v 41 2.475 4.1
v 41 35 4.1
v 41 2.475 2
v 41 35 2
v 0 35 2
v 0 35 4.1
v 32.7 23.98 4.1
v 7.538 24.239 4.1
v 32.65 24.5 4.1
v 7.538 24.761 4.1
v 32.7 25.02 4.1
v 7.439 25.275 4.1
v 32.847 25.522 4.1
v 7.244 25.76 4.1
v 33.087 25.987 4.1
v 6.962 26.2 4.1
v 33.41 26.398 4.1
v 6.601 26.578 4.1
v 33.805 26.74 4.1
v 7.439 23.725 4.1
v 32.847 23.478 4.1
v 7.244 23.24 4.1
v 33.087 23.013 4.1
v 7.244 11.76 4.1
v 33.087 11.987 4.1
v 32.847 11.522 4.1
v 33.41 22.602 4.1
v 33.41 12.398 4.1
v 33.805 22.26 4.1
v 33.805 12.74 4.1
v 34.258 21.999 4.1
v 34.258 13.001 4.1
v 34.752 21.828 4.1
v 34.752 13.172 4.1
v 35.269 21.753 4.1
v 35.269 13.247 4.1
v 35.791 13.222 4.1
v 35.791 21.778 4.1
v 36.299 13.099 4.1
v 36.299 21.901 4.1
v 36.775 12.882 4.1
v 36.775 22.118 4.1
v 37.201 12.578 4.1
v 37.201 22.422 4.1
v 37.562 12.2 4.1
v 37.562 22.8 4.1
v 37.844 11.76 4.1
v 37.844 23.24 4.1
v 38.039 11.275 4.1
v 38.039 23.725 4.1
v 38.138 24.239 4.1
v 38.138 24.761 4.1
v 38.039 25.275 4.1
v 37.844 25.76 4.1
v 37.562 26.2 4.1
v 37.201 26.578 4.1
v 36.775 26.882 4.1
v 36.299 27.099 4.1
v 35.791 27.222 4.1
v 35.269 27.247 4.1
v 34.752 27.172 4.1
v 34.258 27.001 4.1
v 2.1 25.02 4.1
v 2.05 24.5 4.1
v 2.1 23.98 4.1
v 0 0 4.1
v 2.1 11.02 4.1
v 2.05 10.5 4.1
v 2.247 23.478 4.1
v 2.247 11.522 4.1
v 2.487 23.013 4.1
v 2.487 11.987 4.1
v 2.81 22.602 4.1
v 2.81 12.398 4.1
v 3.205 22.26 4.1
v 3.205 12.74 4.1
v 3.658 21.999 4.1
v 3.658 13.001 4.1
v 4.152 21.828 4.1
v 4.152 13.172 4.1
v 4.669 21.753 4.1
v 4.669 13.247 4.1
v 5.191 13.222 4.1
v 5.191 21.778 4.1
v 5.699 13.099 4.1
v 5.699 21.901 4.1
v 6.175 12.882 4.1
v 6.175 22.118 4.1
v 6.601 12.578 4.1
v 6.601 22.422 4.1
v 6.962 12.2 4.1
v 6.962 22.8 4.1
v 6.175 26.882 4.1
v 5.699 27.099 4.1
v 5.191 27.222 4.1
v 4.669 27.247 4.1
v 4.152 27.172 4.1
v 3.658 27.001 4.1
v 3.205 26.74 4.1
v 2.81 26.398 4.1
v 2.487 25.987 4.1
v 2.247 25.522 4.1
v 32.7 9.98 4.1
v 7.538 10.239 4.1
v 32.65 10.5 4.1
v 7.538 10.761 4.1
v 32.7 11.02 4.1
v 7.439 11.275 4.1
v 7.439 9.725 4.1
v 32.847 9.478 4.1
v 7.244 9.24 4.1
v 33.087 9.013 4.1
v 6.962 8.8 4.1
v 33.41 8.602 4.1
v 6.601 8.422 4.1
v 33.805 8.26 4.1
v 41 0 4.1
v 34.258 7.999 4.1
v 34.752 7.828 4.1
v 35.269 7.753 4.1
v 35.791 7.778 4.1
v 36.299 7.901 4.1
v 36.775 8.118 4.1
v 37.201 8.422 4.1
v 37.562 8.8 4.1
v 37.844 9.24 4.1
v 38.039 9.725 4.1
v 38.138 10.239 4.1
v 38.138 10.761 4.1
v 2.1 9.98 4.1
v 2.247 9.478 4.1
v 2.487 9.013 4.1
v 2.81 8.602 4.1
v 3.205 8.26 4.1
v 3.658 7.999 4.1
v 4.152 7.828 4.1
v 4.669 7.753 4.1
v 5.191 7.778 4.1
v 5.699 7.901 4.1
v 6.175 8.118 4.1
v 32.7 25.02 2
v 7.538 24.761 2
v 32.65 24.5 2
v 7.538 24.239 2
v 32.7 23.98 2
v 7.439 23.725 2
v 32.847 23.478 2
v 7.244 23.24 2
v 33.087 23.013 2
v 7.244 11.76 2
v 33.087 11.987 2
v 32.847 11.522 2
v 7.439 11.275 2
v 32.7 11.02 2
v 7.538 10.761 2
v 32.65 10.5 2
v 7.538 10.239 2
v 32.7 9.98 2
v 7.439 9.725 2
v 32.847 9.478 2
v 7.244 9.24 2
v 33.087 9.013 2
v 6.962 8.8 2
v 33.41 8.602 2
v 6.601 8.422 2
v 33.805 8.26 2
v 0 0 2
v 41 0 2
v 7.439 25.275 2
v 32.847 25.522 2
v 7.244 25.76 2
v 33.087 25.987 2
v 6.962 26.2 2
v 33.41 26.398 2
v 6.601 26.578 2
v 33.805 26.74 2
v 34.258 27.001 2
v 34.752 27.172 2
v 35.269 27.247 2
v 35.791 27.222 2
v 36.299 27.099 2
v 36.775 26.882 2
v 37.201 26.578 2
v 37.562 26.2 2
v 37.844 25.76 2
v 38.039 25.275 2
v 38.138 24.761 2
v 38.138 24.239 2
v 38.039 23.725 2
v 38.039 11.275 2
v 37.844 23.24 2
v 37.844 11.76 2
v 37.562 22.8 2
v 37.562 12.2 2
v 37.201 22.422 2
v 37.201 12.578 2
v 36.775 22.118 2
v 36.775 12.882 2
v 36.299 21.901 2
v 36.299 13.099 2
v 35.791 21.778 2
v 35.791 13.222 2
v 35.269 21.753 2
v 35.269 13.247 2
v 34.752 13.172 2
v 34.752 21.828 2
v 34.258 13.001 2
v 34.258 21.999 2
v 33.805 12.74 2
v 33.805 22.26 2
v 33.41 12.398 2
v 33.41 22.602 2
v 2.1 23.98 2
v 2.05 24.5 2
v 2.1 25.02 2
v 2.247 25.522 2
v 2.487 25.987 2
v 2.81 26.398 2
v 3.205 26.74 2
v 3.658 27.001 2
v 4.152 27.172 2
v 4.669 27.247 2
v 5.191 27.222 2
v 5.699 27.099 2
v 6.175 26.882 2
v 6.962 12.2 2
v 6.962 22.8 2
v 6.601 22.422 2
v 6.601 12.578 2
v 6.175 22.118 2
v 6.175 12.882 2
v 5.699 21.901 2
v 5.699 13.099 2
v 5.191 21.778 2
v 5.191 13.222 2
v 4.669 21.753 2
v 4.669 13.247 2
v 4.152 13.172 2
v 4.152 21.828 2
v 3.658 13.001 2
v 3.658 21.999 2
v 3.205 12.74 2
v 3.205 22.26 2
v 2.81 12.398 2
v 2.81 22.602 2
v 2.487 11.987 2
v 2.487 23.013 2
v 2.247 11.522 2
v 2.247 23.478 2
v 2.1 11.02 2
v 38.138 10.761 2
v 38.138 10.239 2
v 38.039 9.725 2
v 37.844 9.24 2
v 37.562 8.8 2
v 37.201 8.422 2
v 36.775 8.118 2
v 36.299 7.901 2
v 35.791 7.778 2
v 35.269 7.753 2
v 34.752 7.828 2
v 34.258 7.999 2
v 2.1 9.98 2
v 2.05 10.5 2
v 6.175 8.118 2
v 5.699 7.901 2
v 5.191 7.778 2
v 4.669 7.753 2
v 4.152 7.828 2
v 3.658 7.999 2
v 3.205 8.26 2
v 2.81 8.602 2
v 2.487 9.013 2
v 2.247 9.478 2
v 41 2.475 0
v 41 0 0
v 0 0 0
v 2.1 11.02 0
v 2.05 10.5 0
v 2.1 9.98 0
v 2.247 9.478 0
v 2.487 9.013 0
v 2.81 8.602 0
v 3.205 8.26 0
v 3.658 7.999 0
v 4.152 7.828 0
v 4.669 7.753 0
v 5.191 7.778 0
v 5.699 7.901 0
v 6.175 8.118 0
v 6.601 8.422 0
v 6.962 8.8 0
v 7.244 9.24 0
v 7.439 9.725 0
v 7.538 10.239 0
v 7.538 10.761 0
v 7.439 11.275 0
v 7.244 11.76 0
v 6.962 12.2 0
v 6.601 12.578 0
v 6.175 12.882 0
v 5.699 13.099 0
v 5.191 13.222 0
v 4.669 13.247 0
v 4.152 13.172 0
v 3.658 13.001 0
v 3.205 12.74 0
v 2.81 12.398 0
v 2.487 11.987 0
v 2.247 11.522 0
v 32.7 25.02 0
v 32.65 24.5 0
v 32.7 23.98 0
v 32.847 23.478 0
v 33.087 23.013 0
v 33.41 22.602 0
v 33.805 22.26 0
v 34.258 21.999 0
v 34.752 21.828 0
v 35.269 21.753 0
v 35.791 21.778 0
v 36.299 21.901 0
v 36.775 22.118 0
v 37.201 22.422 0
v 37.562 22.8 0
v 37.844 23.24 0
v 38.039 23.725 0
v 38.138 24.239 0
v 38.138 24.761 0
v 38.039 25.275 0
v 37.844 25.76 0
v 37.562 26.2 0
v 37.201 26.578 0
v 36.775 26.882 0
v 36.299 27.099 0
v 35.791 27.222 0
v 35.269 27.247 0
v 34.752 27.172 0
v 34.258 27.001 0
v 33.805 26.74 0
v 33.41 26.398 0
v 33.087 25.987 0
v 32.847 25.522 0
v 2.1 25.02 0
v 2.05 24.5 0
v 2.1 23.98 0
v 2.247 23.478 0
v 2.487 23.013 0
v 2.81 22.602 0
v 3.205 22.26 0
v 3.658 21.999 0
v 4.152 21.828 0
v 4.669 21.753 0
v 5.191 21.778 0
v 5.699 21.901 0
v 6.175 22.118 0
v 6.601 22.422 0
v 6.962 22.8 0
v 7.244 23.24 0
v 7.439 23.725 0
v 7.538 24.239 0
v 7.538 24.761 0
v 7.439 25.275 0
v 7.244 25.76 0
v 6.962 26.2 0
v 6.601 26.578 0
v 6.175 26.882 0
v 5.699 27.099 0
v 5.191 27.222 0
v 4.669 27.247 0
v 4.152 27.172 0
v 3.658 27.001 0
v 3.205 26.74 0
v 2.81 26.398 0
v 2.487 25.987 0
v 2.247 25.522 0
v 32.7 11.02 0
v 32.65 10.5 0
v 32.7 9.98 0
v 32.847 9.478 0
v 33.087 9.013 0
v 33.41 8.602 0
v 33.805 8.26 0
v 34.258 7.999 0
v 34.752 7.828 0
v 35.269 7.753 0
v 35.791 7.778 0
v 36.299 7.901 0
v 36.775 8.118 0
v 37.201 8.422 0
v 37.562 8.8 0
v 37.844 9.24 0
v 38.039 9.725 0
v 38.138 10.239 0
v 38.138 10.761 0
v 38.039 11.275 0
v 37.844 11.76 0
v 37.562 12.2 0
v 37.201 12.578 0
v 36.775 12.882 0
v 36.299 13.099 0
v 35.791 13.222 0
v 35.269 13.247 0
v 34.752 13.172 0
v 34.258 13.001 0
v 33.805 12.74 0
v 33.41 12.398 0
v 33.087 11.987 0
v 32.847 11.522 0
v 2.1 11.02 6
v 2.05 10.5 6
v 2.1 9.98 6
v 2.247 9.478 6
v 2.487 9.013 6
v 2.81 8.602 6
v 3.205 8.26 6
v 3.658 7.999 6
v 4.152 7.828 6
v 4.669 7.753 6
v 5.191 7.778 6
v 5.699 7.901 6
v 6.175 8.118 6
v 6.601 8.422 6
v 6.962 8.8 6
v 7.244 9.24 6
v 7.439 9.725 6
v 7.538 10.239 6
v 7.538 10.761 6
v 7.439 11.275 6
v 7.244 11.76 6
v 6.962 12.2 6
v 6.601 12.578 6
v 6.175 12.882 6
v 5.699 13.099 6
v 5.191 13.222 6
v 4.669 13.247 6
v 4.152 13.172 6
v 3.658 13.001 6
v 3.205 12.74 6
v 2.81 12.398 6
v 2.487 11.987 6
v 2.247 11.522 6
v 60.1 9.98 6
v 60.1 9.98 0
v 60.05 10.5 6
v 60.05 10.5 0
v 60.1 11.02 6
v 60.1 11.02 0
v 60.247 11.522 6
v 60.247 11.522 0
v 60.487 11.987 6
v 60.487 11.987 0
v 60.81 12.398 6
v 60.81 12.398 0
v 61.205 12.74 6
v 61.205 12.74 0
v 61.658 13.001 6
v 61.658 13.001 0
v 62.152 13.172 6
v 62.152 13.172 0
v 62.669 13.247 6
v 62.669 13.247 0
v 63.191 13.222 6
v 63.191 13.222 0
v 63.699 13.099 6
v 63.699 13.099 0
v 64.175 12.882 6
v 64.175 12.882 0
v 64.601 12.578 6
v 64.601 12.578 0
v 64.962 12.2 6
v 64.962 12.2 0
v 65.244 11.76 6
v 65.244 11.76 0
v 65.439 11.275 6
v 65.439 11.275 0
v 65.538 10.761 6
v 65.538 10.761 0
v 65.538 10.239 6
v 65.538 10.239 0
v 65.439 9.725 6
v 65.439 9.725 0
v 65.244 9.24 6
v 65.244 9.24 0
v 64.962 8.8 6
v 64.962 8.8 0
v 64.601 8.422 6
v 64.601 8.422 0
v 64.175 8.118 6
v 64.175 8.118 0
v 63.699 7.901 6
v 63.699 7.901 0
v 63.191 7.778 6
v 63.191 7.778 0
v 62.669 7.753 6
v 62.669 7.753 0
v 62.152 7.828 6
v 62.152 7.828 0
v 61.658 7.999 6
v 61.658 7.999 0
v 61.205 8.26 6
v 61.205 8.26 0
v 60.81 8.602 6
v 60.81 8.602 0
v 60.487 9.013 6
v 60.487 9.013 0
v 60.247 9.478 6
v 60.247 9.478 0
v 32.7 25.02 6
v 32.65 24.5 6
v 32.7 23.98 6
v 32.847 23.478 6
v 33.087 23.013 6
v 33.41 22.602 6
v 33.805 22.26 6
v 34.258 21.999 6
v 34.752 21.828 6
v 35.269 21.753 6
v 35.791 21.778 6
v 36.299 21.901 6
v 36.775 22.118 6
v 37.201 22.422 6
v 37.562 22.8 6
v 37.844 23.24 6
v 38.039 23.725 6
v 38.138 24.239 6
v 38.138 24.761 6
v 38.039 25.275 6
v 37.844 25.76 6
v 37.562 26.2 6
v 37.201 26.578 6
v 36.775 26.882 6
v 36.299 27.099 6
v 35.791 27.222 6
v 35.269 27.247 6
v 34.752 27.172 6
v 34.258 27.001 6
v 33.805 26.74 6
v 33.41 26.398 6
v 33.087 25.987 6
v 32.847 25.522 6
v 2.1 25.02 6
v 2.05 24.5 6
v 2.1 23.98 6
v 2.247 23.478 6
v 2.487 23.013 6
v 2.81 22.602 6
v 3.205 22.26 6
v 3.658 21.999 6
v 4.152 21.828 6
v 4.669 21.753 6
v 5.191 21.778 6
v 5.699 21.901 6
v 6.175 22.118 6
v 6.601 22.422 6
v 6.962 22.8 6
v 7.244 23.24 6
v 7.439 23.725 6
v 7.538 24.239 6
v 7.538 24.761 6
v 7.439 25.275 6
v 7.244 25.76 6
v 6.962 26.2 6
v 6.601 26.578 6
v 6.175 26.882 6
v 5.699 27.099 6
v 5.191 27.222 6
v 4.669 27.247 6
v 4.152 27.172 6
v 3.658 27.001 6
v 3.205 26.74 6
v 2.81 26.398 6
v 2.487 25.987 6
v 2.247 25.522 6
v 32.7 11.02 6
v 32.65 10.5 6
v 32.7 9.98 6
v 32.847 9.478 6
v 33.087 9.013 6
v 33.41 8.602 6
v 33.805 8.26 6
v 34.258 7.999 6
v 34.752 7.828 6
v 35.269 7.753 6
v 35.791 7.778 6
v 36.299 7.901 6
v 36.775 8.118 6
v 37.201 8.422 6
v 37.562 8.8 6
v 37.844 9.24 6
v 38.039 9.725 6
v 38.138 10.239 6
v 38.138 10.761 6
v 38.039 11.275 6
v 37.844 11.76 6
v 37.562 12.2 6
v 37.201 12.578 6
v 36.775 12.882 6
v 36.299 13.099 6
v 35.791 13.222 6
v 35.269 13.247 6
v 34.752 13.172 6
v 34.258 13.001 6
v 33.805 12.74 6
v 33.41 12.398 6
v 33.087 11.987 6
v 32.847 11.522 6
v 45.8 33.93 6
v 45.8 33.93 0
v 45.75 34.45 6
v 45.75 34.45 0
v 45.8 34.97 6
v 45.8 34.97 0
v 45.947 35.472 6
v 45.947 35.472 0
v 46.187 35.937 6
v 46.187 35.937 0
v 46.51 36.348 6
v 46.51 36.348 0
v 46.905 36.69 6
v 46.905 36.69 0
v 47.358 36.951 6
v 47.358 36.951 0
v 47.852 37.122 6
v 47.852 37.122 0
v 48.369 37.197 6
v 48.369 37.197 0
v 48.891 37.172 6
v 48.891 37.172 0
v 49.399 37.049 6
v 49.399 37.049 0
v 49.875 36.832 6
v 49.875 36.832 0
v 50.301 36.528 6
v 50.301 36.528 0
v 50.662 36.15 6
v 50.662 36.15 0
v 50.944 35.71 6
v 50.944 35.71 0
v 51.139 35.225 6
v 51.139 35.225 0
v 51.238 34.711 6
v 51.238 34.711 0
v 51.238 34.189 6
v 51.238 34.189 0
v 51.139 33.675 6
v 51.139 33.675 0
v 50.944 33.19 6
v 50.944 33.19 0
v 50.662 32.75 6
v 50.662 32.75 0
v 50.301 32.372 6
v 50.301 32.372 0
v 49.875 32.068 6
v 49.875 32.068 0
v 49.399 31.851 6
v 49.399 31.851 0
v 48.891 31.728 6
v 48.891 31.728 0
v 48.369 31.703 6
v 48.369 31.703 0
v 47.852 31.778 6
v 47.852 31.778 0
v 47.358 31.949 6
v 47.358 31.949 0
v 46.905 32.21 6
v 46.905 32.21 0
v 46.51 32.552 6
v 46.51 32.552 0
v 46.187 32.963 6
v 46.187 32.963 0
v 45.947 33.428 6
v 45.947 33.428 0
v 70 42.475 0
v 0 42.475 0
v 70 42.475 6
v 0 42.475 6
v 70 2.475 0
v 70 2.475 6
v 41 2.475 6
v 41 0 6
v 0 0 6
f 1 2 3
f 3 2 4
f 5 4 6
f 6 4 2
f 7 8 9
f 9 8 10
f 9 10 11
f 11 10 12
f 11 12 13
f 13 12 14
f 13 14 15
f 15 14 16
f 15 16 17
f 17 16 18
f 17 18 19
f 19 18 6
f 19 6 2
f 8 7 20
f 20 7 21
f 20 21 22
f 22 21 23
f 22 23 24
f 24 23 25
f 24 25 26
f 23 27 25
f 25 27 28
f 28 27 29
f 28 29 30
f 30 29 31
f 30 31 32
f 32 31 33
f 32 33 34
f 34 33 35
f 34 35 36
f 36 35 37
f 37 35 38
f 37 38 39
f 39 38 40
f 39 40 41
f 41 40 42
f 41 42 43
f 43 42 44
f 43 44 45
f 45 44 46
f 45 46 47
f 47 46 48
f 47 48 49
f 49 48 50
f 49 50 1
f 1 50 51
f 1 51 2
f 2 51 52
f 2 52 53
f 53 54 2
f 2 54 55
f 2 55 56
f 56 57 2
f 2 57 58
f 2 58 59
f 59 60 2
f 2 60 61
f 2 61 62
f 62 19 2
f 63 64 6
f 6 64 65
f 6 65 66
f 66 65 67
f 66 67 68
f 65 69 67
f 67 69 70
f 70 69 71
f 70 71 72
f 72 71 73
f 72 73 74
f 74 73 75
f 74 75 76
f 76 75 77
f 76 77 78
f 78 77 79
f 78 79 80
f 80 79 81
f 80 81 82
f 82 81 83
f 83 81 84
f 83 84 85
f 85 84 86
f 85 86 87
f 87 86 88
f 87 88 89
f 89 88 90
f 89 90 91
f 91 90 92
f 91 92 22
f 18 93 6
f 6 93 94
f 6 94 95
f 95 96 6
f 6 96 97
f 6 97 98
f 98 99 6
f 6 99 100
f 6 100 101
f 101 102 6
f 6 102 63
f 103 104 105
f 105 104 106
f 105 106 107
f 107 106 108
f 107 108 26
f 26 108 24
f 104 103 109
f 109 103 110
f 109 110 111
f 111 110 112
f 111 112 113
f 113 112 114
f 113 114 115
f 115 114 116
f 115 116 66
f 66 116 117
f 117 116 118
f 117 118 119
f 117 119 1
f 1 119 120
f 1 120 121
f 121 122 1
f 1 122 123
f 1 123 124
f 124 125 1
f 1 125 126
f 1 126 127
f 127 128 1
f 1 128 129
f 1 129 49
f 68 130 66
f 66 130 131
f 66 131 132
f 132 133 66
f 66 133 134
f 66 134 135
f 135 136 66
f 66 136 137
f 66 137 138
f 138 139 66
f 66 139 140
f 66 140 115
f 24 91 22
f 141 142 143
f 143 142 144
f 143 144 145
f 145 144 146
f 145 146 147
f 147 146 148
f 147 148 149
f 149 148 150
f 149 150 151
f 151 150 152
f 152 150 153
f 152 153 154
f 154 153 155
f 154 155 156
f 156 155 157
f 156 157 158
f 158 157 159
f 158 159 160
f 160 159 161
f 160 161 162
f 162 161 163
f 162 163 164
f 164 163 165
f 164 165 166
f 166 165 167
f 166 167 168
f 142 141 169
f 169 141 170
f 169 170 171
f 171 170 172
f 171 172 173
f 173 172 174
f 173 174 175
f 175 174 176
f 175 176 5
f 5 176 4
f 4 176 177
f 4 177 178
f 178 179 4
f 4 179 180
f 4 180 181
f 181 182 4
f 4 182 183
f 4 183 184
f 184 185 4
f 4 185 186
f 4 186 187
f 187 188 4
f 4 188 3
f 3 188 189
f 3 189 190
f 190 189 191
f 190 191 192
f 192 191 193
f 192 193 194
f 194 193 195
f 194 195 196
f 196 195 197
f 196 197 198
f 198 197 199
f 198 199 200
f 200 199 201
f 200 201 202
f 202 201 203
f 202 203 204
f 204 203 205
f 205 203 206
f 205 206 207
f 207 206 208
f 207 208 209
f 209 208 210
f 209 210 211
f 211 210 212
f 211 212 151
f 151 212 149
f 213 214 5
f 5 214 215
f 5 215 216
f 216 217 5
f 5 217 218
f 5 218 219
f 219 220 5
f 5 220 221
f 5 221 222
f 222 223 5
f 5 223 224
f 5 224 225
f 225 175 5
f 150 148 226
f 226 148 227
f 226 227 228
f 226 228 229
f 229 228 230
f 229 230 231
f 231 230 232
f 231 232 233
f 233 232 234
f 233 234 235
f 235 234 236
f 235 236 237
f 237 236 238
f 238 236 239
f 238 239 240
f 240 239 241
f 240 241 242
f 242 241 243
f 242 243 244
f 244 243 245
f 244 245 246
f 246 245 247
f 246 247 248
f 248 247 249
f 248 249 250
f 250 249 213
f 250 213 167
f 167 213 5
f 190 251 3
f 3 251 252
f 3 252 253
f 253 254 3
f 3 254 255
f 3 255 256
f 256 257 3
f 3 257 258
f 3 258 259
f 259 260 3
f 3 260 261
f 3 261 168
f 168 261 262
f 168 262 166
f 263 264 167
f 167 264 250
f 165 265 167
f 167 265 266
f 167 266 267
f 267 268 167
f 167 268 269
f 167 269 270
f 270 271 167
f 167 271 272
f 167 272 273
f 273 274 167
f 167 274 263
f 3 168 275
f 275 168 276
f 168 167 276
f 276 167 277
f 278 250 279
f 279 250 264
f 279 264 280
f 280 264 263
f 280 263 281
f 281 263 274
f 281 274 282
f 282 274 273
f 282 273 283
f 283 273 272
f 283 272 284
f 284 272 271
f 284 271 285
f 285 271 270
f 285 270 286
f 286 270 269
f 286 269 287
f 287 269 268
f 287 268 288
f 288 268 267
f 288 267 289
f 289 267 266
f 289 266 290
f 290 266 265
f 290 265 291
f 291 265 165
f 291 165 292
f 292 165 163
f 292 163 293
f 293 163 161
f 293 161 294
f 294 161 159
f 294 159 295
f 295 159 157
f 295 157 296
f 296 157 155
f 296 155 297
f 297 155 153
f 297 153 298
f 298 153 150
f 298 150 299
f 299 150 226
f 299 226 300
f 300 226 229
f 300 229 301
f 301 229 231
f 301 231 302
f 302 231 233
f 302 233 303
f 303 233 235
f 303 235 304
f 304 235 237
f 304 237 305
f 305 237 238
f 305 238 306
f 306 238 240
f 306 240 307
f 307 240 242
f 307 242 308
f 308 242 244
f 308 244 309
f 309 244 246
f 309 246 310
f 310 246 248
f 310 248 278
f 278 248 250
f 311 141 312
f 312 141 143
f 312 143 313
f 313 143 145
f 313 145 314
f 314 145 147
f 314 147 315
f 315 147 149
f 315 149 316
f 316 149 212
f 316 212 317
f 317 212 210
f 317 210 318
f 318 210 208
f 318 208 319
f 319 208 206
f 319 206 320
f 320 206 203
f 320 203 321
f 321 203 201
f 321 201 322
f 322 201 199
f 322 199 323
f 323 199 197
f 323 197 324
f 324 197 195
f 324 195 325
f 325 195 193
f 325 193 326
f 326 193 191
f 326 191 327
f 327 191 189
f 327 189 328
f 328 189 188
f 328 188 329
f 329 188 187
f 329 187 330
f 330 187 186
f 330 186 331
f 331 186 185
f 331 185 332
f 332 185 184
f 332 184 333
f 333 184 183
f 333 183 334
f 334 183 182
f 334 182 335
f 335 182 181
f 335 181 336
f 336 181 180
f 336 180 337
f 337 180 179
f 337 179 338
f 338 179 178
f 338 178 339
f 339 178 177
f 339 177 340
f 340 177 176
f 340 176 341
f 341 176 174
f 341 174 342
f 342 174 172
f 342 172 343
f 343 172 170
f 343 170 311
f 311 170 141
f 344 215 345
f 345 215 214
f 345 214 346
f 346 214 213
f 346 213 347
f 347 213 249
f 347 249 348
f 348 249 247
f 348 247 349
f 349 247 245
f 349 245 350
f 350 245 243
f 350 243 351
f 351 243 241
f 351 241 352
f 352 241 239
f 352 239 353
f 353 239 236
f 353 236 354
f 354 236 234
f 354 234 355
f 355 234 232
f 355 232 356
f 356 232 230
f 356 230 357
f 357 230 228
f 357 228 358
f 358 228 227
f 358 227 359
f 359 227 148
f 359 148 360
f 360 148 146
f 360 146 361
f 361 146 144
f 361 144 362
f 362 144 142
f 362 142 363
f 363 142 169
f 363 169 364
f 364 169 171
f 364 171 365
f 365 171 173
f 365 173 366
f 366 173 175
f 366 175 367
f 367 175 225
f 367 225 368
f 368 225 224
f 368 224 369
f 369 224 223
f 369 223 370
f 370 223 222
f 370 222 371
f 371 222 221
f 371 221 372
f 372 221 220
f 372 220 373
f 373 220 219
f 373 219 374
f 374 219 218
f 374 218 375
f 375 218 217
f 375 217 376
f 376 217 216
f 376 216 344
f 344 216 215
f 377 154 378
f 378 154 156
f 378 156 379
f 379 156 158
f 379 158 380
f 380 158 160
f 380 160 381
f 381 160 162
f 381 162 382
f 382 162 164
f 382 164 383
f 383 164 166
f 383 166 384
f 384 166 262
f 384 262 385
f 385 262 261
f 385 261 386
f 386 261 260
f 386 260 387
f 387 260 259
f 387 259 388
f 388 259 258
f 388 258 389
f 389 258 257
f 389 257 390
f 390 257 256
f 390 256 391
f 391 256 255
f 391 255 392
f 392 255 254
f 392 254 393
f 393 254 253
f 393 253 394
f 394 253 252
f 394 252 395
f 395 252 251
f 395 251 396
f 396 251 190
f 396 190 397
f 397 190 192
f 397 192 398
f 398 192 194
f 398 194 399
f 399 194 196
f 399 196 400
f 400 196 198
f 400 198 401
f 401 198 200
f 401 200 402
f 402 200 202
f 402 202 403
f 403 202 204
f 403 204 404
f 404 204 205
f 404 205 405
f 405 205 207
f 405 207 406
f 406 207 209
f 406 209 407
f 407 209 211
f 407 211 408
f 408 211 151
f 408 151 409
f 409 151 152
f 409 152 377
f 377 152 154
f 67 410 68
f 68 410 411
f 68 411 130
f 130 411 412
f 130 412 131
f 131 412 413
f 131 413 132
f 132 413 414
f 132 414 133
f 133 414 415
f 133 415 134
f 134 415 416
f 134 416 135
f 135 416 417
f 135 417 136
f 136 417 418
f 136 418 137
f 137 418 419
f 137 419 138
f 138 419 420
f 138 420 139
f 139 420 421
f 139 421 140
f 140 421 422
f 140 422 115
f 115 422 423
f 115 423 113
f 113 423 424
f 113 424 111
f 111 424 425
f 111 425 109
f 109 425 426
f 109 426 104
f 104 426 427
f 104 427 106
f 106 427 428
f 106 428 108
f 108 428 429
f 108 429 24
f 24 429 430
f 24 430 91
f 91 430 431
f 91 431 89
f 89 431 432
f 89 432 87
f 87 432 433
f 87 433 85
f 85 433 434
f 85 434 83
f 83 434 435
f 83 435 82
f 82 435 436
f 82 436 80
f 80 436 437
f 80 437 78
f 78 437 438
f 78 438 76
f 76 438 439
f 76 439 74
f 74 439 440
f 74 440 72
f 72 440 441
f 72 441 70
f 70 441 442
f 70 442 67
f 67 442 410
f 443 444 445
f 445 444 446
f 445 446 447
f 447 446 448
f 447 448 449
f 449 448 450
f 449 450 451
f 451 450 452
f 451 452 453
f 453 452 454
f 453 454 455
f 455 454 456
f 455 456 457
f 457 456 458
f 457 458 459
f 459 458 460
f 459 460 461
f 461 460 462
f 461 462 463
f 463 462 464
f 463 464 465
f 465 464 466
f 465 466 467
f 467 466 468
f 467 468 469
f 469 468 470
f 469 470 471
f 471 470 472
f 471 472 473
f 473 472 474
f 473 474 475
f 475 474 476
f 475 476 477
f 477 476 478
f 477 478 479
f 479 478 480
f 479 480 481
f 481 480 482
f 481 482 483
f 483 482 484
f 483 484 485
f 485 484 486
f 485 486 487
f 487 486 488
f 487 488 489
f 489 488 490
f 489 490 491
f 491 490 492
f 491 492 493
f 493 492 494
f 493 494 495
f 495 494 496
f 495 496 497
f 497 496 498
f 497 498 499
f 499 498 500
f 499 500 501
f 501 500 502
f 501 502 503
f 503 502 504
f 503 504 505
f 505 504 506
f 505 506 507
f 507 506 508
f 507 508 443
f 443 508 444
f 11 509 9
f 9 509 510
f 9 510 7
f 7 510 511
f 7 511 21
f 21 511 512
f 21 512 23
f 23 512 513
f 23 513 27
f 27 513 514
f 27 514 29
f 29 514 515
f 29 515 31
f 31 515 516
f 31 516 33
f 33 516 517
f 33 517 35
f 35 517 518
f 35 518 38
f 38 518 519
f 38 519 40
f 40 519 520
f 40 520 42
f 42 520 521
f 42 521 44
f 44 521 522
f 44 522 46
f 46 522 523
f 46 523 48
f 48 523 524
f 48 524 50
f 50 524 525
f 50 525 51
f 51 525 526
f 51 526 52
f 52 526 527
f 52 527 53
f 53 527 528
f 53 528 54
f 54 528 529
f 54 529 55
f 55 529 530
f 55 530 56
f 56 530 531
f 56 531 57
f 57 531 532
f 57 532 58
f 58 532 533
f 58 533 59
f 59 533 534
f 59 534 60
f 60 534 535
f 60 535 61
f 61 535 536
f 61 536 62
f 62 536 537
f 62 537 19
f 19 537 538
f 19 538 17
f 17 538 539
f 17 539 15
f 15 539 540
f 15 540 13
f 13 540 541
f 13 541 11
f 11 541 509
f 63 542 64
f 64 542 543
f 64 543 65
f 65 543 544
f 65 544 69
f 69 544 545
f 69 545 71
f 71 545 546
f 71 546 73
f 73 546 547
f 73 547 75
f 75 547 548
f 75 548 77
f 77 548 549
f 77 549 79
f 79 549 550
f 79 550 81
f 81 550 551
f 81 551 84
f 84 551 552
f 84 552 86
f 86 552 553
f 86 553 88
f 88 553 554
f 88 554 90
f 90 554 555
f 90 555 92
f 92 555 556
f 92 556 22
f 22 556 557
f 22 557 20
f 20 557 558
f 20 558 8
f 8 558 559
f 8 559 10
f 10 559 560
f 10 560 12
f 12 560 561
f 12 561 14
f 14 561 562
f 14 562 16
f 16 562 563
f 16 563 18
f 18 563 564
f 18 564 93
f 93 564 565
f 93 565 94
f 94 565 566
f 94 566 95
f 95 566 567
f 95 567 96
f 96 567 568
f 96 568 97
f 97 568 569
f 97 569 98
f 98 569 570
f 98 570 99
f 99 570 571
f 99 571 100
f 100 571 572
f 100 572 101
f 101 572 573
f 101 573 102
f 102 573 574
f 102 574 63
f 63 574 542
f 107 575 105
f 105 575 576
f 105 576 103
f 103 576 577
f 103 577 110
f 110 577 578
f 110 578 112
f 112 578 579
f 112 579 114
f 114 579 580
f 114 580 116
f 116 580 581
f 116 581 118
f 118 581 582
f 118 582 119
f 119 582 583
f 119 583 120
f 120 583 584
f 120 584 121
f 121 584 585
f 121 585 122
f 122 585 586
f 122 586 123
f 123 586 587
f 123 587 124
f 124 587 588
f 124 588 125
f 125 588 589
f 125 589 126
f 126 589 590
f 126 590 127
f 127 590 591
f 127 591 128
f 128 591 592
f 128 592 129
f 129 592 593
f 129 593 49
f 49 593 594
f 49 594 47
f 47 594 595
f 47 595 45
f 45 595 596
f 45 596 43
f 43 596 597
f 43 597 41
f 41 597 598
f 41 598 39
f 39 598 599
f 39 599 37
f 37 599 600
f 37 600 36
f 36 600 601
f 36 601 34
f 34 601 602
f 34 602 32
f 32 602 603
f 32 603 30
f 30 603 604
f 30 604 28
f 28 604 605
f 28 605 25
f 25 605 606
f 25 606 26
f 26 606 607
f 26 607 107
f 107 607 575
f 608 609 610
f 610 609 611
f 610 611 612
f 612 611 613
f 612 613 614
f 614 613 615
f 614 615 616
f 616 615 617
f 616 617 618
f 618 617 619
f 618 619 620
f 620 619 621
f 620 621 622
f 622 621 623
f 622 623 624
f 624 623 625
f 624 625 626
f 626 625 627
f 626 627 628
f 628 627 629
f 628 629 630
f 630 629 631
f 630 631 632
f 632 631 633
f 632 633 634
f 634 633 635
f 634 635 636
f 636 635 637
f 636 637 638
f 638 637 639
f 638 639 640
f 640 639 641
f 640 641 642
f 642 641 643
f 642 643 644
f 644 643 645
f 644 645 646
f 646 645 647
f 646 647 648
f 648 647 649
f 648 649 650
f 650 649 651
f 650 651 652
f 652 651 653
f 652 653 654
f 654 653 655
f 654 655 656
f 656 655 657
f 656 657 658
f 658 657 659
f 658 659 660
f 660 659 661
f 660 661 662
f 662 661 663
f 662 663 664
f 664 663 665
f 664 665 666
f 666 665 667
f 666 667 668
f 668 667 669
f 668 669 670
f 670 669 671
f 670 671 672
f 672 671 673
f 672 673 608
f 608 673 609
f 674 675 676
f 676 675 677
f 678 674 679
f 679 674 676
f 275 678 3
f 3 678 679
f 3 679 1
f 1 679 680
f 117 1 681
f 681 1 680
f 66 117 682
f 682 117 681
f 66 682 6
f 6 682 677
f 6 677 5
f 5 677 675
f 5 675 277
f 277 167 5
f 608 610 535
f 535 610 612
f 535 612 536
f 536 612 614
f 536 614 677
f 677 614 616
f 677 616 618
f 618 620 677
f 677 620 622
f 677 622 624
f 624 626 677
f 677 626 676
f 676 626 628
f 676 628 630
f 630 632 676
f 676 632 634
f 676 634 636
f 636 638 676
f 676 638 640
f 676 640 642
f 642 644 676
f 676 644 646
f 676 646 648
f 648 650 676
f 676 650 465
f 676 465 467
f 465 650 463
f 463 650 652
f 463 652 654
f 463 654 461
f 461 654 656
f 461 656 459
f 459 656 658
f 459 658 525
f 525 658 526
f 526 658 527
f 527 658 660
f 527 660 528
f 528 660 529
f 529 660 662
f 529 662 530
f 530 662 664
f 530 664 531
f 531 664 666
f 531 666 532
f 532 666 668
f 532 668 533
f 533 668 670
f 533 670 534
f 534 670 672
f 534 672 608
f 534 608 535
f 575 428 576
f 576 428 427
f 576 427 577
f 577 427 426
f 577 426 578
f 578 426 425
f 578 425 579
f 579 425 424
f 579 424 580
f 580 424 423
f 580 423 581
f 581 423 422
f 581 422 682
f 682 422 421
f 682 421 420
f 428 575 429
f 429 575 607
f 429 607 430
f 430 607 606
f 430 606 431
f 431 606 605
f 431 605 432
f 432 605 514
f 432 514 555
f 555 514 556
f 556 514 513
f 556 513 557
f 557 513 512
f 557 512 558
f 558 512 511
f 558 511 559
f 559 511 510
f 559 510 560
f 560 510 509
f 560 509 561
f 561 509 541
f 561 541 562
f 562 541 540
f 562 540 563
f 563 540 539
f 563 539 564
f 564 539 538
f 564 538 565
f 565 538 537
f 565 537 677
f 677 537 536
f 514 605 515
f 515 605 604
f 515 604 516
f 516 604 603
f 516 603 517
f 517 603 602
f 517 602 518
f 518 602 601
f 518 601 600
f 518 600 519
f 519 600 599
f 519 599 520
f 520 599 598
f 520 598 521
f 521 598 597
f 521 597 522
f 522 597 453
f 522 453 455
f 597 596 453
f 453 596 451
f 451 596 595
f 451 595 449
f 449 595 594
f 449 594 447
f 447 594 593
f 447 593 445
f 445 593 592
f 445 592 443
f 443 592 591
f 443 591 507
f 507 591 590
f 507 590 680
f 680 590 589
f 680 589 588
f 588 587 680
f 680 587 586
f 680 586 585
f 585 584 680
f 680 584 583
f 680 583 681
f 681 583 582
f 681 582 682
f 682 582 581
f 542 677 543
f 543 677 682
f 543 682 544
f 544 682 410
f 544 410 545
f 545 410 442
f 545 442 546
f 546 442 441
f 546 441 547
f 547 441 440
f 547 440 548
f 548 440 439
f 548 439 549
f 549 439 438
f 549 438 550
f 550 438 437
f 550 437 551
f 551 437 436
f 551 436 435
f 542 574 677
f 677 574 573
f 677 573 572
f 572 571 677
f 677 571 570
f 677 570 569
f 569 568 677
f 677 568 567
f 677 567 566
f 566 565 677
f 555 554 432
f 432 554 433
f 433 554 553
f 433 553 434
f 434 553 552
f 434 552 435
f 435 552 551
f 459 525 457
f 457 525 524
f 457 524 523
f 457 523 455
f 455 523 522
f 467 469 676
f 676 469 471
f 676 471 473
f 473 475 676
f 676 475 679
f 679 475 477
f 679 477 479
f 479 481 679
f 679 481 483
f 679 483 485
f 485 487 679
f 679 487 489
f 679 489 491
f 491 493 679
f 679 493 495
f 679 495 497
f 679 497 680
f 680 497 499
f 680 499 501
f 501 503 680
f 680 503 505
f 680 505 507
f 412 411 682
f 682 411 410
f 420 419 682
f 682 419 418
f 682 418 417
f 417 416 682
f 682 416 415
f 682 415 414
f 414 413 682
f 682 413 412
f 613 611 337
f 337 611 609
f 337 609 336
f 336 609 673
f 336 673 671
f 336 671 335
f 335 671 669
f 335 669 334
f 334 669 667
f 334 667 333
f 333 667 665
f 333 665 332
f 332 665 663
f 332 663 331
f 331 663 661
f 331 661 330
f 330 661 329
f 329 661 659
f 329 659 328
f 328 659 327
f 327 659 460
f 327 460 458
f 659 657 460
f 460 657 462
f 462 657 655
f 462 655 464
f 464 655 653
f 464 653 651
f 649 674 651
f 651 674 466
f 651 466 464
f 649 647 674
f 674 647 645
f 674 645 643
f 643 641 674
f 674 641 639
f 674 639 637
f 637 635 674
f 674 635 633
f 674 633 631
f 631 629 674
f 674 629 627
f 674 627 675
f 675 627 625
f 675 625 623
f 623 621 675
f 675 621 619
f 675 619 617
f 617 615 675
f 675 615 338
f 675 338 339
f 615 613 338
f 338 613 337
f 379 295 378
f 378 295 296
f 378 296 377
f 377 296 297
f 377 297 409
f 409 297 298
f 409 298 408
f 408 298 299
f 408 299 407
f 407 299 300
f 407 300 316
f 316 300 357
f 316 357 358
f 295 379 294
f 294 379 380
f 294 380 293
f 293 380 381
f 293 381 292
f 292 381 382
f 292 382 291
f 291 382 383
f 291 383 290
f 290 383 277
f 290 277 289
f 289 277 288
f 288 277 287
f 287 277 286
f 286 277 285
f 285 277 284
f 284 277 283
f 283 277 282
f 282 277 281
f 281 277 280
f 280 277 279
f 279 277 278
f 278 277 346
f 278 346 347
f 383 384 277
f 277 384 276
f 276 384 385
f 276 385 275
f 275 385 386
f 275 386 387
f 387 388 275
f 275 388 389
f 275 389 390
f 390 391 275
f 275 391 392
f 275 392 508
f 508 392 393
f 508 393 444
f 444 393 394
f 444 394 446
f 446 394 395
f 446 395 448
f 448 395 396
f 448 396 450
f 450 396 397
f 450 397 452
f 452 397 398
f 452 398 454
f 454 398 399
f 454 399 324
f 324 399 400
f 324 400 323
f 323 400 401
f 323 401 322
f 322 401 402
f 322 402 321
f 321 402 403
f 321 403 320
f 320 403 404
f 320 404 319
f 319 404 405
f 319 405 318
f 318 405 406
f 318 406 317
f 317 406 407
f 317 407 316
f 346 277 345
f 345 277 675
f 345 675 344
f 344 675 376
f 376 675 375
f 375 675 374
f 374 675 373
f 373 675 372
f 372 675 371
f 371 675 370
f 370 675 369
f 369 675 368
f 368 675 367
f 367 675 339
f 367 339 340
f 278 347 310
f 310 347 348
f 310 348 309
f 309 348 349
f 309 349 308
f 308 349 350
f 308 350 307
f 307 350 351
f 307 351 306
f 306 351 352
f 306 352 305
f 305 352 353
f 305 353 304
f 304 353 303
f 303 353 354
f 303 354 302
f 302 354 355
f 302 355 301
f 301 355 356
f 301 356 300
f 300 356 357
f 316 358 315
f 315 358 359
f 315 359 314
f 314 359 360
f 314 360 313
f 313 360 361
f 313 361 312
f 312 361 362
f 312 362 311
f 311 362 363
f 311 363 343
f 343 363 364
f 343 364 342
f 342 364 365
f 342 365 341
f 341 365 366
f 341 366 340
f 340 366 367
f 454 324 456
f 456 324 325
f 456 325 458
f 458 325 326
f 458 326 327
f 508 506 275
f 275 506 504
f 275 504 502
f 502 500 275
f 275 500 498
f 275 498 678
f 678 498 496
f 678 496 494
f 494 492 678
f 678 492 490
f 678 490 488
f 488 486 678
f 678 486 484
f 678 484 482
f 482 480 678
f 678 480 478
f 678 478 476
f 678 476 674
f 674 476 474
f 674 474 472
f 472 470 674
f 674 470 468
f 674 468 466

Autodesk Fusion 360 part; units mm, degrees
sketch "Sketch1" plane through (0, 0, 0) normal (0, 0, 1) x (1, 0, 0)
  line L0 (0, 0) -> (41, 0)
  line L1 (41, 0) -> (41, 35)
  line L2 (41, 35) -> (0, 35)
  line L3 (0, 35) -> (0, 0)
  line L4 (0, 17.5) -> (41, 17.5) construction
  circle A0 centre (4.8, 24.5) radius 2.75
  circle A1 centre (4.8, 10.5) radius 2.75
  line L5 (4.8, 24.5) -> (4.8, 10.5) construction
  line L6 (2.05, 10.5) -> (4.8, 10.5) construction
  line L7 (41, 42.475) -> (70, 42.475)
  line L8 (70, 42.475) -> (70, 2.475)
  line L9 (70, 2.475) -> (41, 2.475)
  line L10 (41, 2.475) -> (41, 0)
  line L11 (48.5, 34.45) -> (48.5, 10.5) construction
  circle A2 centre (48.5, 34.45) radius 2.75
  circle A3 centre (48.5, 10.5) radius 2.75 construction
  line L12 (70, 22.475) -> (48.5, 22.475) construction
  line L13 (41, 42.475) -> (41, 35)
  line L14 (0, 35) -> (0, 42.475)
  line L15 (0, 42.475) -> (41, 42.475)
  line L16 (62.8, 34.45) -> (62.8, 10.5) construction
  circle A4 centre (62.8, 34.45) radius 2.75 construction
  circle A5 centre (62.8, 10.5) radius 2.75
  line L17 (48.5, 34.45) -> (62.8, 34.45) construction
  line L18 (48.5, 10.5) -> (62.8, 10.5) construction
  line L19 (35.4, 24.5) -> (35.4, 10.5) construction
  circle A6 centre (35.4, 24.5) radius 2.75
  circle A7 centre (35.4, 10.5) radius 2.75
  point P0 (2.05, 10.5)
  dimension "d1" = 41
  dimension "d2" = 35
  dimension "d3" = 14
  dimension "d7" = 40
  dimension "d8" = 7.5
  dimension "d9" = 5.5
  dimension "d12" = 23.95
  dimension "d13" = 4.8
  dimension "d14" = 5.5
  dimension "d20" = 14.3
  dimension "d21" = 30.6
  dimension "d22" = 29
extrude "Extrude1" add sketch "Sketch1" along normal blind 6
extrude "Extrude2" cut sketch "Sketch1" along normal blind 2.1 from surface at 2 contours L0 L1 L2 L3 L10
equation "d3 = ( ( 9 + 19 ) / 2 ) * 1 mm"
equation "d8 = ( ( 4 + 11 ) / 2 ) * 1 mm"
equation "d12 = ( ( 17.5 + 30.4 ) / 2 ) * 1 mm"
equation "d15 = 2 mm + 2 mm + 2 mm"
equation "d20 = ( 18.3 mm - 4 mm )"
equation "d21 = ( ( 25.6 + 35.6 ) / 2 ) * 1 mm"
